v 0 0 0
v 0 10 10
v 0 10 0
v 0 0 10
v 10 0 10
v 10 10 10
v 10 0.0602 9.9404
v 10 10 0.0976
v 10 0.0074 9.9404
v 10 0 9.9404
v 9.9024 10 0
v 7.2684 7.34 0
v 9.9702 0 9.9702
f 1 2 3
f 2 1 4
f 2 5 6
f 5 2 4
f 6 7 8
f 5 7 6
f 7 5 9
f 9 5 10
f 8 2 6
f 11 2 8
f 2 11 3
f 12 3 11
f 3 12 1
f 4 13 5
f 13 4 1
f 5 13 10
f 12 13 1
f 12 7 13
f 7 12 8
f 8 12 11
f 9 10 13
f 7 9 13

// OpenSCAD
difference(){
cube([10, 10, 10], center=false);
mirror([0,0,1]){
color([1,0.8,0]) {
rotate([35, 45, 0]){
cube([14.1, 14.1, 14.1], center=false);
}
}
}
}
